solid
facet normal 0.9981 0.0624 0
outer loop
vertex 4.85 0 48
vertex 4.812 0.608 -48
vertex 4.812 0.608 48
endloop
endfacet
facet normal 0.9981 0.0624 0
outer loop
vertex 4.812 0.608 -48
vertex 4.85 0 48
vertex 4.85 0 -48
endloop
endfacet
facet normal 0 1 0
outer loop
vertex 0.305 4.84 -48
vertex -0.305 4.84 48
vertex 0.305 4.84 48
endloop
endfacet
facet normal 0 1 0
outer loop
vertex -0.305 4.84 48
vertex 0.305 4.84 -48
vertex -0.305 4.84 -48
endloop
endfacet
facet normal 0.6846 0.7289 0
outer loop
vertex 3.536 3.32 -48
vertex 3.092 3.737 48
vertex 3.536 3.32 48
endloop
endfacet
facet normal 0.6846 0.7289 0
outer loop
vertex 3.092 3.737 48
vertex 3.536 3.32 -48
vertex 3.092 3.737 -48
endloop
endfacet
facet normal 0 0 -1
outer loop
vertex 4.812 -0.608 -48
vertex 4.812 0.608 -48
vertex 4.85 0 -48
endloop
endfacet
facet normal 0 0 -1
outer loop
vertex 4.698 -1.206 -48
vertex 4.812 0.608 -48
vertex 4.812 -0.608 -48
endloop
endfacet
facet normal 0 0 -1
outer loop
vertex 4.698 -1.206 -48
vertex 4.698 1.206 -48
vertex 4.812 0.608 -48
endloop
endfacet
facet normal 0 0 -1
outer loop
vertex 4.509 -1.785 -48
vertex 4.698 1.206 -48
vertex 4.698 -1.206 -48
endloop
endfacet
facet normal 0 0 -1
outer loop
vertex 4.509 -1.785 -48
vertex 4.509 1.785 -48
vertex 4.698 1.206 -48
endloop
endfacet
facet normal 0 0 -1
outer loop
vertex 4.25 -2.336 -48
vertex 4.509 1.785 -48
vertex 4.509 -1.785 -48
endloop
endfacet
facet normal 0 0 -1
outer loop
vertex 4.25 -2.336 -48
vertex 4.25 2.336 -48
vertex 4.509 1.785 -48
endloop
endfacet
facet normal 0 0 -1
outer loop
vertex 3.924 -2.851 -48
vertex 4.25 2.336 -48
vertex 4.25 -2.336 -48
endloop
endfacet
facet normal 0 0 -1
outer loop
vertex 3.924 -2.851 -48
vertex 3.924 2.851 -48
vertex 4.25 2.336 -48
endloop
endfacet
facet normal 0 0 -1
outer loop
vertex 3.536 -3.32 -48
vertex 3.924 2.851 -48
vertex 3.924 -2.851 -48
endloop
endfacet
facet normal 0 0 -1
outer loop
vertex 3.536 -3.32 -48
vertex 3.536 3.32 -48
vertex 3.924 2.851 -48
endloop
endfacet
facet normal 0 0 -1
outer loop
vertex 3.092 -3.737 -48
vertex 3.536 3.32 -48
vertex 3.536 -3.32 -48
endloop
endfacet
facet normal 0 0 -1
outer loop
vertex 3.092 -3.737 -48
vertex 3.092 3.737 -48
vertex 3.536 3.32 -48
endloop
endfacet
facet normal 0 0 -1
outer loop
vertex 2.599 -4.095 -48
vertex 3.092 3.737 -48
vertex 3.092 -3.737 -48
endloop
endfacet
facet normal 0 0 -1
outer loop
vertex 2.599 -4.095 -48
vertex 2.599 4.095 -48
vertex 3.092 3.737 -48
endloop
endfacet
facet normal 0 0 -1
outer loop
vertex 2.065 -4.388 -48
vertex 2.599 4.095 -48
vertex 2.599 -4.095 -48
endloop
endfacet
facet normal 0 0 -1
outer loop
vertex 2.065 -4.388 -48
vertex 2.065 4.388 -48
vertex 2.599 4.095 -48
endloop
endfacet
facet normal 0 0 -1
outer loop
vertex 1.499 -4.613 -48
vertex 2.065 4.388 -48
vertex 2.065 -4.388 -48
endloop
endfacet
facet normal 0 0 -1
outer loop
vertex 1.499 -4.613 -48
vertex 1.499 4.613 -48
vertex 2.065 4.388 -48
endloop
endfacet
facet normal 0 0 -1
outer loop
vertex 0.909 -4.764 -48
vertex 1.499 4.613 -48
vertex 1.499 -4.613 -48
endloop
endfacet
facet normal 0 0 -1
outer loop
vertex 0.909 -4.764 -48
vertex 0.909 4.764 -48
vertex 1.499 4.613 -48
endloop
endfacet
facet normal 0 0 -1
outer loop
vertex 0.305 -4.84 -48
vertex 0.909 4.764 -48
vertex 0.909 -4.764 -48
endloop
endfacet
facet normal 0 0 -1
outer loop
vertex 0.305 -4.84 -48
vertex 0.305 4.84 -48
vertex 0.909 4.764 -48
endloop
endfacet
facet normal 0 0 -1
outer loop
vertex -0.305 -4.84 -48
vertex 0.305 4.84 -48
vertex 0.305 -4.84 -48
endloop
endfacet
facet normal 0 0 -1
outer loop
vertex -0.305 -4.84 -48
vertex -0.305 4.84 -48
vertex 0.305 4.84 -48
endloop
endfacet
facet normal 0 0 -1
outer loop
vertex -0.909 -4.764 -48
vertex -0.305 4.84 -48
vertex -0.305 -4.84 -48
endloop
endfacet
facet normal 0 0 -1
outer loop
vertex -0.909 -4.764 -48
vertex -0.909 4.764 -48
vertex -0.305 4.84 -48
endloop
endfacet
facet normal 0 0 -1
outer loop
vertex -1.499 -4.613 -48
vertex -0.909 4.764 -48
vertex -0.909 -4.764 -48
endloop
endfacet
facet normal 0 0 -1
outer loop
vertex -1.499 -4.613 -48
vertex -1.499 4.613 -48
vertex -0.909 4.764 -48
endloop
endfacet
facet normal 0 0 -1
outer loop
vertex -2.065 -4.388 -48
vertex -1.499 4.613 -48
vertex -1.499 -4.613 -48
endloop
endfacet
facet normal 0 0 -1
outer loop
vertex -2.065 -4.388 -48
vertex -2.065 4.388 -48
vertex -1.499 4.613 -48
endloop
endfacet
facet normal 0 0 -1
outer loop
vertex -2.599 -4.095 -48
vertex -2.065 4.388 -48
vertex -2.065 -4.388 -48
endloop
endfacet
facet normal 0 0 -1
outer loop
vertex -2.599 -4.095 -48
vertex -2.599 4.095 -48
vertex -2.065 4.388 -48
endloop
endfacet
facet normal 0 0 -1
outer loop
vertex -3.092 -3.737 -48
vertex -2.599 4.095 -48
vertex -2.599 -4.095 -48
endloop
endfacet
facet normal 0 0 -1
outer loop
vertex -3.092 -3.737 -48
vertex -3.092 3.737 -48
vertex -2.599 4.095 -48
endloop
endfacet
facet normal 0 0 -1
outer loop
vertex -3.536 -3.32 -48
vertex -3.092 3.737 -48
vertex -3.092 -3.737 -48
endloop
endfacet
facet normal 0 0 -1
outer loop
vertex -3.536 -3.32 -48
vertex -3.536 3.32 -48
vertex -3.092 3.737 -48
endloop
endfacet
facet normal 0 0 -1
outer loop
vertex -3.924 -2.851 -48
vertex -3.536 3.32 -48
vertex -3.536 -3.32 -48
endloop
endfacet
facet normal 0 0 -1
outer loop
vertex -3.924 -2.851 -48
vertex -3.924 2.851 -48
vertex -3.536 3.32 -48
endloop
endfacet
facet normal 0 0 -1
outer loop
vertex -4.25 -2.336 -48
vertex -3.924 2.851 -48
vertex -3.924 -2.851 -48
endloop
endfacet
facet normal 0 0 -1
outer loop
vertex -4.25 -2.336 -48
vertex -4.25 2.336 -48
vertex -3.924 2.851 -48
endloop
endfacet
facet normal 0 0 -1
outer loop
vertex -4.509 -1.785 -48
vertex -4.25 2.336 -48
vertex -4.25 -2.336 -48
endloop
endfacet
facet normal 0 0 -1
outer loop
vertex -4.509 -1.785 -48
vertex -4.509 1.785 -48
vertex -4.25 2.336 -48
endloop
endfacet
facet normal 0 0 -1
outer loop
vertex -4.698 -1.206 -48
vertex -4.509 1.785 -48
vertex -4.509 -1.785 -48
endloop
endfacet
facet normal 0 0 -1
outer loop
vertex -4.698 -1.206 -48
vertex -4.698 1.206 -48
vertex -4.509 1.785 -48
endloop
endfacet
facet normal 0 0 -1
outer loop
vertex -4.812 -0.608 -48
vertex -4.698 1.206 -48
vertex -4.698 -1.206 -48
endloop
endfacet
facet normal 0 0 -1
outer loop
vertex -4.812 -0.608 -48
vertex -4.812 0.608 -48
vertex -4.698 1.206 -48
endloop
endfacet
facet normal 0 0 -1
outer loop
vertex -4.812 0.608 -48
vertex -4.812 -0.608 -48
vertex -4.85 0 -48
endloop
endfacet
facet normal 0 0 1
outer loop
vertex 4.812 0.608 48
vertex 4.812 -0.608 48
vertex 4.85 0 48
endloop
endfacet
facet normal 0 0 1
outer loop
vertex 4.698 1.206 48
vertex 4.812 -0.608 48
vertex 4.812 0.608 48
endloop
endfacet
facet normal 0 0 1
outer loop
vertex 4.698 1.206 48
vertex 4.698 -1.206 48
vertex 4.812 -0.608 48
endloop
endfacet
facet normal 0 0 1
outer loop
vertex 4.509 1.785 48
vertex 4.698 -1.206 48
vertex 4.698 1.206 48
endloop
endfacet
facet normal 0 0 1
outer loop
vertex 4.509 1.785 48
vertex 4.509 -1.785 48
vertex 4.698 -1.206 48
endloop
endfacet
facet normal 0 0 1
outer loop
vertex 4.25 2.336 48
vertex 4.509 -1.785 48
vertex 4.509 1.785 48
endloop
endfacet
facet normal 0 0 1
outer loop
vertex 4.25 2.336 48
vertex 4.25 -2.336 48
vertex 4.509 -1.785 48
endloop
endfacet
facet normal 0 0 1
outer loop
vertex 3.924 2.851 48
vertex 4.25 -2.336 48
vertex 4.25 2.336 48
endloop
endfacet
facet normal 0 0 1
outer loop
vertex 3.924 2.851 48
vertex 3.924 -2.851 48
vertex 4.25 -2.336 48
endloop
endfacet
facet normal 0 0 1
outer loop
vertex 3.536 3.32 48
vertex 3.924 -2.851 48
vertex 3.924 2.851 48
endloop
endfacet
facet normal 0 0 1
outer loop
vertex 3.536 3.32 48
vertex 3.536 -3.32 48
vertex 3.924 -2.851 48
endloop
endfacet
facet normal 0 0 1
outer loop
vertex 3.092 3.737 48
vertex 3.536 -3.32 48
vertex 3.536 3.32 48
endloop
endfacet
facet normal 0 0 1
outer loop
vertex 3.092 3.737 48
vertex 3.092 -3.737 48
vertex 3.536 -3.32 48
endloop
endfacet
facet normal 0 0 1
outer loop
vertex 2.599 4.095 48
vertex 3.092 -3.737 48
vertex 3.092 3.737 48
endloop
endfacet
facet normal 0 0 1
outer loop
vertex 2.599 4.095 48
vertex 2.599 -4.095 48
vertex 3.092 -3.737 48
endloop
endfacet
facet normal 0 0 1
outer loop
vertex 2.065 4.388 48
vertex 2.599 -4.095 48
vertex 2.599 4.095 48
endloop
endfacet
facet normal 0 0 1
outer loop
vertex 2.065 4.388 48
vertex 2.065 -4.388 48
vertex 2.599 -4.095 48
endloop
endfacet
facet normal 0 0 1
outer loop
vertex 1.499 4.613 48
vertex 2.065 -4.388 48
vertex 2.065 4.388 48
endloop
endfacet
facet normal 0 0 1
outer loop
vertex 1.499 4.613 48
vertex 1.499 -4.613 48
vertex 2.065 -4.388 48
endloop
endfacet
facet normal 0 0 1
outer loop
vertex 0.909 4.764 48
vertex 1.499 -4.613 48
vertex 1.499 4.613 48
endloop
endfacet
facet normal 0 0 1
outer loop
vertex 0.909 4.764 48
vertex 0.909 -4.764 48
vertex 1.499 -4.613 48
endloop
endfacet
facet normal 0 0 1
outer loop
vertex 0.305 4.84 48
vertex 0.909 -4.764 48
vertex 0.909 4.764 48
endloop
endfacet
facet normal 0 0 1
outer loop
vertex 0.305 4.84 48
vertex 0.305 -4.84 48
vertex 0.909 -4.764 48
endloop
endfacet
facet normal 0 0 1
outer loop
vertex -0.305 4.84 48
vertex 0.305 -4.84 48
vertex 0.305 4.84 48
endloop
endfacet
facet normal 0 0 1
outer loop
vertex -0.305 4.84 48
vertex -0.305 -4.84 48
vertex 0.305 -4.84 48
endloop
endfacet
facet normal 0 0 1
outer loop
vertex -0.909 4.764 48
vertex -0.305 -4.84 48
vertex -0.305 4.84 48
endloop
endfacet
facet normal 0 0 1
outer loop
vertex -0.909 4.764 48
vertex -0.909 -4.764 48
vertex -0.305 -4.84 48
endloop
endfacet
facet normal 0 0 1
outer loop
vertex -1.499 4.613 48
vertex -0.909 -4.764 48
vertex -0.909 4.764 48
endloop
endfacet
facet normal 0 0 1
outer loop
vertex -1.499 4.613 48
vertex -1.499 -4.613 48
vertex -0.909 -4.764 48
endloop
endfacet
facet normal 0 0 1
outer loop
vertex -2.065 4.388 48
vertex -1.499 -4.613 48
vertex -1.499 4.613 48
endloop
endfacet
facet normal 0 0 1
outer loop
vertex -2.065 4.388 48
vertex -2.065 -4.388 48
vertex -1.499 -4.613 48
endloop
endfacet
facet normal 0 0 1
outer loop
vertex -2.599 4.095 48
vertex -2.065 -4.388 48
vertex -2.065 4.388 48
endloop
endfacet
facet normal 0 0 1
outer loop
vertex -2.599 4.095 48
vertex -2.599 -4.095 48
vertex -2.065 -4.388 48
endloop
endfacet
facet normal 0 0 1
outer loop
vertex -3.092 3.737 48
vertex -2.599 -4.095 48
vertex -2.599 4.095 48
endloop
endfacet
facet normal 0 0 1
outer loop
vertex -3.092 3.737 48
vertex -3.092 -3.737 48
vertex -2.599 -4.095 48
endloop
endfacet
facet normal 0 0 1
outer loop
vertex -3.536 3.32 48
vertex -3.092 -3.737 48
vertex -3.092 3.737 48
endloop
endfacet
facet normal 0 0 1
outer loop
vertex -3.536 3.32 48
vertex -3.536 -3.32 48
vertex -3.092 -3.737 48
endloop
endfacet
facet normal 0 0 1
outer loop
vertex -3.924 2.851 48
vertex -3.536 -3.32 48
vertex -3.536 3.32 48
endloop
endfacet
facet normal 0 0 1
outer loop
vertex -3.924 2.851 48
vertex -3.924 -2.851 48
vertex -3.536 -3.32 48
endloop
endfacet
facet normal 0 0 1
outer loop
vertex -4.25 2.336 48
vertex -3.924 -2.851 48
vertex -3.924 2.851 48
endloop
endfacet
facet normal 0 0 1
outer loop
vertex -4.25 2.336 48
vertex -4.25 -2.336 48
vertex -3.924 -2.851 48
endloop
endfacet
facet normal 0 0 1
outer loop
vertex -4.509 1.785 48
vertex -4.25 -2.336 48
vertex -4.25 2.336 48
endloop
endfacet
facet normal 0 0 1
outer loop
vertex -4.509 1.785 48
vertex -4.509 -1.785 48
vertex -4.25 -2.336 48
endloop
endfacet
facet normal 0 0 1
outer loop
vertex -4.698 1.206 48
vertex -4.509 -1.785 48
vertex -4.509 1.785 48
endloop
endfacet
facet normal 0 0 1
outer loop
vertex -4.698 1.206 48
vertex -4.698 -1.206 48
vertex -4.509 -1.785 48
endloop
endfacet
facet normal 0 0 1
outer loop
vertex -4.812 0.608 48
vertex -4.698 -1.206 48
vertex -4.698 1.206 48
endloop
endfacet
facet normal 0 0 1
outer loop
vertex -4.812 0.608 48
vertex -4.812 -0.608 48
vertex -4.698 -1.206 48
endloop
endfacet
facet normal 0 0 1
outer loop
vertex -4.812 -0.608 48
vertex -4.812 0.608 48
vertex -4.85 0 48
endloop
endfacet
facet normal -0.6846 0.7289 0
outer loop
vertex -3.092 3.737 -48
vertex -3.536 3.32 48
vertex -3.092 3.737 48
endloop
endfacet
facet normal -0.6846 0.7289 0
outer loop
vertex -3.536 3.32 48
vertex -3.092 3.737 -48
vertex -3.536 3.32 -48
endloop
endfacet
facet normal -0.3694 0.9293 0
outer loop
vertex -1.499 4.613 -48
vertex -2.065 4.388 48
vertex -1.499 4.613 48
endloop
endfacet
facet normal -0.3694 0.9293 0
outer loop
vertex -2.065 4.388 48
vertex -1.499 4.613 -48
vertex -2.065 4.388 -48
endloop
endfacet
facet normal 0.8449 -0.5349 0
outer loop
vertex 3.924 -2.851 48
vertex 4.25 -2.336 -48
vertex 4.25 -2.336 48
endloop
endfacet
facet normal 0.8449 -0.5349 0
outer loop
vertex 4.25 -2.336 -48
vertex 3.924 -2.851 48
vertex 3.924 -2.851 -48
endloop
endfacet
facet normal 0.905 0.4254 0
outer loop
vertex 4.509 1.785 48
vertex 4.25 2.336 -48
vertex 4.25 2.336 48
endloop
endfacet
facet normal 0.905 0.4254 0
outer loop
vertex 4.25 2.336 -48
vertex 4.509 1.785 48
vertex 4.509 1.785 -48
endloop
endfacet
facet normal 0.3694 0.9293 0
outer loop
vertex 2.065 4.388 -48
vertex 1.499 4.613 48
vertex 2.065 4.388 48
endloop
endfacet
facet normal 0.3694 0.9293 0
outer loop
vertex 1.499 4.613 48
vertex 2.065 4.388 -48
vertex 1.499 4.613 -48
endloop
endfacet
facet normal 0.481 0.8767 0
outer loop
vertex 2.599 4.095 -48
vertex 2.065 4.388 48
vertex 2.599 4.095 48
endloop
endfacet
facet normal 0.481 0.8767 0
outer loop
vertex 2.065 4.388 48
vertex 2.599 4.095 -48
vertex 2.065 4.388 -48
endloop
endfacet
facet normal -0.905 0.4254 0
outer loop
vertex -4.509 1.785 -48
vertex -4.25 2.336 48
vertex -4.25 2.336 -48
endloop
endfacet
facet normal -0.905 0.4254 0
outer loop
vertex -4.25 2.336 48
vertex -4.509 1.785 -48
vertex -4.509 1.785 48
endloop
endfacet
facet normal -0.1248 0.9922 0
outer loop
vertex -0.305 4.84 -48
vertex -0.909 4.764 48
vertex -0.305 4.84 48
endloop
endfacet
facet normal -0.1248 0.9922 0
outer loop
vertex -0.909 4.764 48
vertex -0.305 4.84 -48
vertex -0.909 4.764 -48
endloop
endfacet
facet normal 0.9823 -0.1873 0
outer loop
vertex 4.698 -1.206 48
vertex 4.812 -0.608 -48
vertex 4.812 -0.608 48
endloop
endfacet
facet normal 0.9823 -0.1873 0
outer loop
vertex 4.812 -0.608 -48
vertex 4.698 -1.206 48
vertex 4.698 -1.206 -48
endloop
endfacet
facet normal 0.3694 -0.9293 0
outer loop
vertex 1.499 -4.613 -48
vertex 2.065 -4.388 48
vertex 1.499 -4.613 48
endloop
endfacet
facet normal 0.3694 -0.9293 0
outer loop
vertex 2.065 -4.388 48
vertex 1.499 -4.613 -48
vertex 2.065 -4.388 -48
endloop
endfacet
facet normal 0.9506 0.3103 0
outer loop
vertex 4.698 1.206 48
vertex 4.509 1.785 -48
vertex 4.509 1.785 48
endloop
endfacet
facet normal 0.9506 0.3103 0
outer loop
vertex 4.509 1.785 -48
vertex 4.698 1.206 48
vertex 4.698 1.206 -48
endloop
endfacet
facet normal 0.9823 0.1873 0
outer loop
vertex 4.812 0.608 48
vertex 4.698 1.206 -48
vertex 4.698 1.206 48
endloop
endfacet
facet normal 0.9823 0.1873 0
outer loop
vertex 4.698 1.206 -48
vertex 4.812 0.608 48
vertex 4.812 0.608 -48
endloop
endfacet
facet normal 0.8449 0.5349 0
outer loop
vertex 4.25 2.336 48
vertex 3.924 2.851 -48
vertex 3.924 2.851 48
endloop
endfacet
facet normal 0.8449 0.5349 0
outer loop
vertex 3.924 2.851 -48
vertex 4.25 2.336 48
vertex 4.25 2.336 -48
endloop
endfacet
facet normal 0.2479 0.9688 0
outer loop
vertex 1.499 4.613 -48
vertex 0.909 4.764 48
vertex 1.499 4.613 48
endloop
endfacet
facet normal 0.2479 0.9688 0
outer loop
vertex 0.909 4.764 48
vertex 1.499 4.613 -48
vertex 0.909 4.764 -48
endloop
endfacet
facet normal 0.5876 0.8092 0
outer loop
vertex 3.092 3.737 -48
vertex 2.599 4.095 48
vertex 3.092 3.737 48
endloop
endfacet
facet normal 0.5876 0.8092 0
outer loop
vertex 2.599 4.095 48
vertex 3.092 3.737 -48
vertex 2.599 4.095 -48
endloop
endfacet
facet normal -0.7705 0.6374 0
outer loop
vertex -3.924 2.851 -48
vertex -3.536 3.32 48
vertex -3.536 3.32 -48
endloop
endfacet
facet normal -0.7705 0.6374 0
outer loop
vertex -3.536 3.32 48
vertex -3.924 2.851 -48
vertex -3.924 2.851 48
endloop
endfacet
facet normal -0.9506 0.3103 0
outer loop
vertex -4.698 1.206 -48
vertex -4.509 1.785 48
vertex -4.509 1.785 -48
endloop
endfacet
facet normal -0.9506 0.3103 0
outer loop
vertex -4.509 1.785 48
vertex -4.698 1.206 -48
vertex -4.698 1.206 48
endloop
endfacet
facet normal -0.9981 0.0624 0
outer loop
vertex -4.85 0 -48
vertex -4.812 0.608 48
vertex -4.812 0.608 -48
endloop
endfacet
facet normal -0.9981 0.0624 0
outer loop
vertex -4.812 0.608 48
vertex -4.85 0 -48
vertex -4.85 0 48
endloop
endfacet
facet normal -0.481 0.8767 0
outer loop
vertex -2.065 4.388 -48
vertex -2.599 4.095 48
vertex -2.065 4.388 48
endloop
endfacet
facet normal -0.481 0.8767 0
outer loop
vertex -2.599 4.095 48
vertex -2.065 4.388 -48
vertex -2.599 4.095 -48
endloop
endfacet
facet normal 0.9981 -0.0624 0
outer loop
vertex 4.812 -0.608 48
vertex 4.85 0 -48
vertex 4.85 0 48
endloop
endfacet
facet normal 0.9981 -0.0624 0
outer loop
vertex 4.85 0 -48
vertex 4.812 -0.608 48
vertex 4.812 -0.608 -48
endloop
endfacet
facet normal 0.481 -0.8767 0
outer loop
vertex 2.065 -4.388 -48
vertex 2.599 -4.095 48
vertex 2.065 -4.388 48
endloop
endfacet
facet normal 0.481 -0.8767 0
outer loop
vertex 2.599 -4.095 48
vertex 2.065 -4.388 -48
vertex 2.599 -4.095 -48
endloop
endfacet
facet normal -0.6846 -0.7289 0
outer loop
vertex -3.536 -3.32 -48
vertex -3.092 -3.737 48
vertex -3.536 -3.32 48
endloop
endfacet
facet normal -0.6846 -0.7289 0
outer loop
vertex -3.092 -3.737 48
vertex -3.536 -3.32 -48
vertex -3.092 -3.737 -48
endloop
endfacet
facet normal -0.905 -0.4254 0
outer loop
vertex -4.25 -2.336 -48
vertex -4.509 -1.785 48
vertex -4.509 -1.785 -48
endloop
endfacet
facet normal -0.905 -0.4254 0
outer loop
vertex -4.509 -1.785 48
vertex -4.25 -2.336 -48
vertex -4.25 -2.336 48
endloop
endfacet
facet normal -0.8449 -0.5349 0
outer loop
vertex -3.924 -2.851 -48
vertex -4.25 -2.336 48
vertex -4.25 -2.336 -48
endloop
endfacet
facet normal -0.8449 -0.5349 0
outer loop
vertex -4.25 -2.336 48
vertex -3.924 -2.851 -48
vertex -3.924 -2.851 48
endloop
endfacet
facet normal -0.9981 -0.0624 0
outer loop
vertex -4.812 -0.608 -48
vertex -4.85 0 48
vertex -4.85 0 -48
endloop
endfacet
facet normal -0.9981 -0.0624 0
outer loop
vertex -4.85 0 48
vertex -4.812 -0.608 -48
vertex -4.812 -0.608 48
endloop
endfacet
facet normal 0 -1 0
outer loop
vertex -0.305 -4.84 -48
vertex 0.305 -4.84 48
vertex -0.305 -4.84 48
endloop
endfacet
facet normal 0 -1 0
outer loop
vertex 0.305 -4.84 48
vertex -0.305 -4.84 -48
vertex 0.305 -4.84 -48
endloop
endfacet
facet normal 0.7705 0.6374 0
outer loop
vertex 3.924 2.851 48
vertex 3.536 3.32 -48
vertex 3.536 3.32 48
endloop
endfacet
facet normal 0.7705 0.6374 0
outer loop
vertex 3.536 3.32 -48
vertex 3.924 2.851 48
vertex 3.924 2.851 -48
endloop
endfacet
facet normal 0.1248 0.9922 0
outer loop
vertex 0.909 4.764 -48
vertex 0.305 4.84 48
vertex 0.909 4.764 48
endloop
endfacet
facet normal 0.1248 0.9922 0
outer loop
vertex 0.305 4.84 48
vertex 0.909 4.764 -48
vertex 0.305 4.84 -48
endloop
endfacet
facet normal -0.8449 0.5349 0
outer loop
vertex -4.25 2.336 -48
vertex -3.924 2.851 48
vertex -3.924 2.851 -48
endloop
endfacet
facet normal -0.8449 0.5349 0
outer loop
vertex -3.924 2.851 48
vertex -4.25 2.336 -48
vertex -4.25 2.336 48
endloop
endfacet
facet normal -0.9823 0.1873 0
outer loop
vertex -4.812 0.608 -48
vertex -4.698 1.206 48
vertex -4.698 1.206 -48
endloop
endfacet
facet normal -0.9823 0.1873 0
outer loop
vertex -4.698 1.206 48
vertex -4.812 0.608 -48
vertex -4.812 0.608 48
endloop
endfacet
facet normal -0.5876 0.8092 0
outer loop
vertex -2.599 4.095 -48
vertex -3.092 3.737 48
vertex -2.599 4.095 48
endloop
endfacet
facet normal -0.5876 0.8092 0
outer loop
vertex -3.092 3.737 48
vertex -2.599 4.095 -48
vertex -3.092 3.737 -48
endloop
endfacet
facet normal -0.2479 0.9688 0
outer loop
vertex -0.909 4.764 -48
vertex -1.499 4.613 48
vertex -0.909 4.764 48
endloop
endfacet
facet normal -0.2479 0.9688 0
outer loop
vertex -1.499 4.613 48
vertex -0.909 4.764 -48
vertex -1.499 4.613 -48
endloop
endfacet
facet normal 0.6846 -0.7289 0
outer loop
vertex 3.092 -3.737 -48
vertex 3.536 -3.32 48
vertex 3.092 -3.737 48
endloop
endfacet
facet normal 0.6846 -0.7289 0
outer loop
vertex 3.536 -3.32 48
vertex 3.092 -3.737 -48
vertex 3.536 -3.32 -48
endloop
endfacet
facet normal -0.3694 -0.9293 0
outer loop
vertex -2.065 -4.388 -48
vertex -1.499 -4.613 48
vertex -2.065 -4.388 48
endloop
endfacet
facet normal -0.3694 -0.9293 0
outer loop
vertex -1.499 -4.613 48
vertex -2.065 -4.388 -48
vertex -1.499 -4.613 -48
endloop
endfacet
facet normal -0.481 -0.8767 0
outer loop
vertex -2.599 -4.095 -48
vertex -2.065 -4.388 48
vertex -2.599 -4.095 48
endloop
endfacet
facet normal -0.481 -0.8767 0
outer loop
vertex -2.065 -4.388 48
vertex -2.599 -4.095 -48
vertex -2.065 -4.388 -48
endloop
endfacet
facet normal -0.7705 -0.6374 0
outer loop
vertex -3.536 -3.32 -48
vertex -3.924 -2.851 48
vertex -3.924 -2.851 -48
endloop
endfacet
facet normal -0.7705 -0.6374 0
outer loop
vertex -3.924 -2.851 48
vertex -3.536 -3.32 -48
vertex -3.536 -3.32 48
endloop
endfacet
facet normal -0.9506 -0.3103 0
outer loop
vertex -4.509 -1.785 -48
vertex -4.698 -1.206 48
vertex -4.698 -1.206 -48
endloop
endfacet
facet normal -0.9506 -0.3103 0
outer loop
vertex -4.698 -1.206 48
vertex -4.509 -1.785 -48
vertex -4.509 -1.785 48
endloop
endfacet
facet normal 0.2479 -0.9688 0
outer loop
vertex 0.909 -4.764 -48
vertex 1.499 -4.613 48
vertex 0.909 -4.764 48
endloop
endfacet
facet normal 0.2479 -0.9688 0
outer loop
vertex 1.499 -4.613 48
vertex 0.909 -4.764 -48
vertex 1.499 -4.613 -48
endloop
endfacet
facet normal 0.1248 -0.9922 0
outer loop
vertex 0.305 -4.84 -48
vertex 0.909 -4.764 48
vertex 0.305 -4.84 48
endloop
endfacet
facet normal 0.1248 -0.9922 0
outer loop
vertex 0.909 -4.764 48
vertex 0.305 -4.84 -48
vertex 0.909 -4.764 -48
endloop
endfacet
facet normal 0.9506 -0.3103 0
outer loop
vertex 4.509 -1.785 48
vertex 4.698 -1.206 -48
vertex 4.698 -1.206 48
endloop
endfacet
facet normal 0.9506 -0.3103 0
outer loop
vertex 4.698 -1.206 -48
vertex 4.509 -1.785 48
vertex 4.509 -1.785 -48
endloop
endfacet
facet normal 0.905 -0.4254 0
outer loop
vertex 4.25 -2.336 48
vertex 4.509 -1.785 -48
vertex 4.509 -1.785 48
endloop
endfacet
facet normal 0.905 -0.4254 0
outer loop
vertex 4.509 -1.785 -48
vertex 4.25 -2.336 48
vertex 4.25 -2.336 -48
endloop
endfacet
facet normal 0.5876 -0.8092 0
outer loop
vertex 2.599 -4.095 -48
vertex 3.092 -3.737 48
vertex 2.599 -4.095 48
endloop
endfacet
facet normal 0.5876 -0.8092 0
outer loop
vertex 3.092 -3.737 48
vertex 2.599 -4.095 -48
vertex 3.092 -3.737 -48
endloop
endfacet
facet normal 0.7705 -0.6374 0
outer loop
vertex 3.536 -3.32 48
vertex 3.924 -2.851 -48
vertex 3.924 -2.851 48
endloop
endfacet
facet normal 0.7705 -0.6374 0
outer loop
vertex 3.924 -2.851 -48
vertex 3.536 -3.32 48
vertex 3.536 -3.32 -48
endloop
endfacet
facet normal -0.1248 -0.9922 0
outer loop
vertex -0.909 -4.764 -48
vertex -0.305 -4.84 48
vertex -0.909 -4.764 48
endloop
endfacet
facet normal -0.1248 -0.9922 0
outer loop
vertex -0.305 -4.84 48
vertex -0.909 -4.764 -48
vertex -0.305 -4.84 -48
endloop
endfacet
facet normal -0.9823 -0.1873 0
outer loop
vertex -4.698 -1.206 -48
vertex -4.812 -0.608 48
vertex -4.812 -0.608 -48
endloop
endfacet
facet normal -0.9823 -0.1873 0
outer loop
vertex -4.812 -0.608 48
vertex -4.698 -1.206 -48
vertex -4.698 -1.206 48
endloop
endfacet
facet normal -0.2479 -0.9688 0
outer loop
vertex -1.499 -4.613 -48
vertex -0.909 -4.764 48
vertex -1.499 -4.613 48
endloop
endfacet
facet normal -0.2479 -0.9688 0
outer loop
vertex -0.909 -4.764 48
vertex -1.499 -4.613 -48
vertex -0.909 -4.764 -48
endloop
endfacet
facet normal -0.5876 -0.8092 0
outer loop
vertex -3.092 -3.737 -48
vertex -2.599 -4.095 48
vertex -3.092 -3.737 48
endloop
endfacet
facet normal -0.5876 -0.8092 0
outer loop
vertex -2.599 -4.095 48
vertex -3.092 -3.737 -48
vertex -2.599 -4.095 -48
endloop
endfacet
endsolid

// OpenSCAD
$fn = 50;


difference() {
	union() {
		translate(v = [0, 0, -48.0000000000]) {
			cylinder(h = 96, r = 4.8500000000);
		}
	}
	union() {
		translate(v = [0, 0, -100.0000000000]) {
			cylinder(h = 200, r = 0);
		}
	}
}
